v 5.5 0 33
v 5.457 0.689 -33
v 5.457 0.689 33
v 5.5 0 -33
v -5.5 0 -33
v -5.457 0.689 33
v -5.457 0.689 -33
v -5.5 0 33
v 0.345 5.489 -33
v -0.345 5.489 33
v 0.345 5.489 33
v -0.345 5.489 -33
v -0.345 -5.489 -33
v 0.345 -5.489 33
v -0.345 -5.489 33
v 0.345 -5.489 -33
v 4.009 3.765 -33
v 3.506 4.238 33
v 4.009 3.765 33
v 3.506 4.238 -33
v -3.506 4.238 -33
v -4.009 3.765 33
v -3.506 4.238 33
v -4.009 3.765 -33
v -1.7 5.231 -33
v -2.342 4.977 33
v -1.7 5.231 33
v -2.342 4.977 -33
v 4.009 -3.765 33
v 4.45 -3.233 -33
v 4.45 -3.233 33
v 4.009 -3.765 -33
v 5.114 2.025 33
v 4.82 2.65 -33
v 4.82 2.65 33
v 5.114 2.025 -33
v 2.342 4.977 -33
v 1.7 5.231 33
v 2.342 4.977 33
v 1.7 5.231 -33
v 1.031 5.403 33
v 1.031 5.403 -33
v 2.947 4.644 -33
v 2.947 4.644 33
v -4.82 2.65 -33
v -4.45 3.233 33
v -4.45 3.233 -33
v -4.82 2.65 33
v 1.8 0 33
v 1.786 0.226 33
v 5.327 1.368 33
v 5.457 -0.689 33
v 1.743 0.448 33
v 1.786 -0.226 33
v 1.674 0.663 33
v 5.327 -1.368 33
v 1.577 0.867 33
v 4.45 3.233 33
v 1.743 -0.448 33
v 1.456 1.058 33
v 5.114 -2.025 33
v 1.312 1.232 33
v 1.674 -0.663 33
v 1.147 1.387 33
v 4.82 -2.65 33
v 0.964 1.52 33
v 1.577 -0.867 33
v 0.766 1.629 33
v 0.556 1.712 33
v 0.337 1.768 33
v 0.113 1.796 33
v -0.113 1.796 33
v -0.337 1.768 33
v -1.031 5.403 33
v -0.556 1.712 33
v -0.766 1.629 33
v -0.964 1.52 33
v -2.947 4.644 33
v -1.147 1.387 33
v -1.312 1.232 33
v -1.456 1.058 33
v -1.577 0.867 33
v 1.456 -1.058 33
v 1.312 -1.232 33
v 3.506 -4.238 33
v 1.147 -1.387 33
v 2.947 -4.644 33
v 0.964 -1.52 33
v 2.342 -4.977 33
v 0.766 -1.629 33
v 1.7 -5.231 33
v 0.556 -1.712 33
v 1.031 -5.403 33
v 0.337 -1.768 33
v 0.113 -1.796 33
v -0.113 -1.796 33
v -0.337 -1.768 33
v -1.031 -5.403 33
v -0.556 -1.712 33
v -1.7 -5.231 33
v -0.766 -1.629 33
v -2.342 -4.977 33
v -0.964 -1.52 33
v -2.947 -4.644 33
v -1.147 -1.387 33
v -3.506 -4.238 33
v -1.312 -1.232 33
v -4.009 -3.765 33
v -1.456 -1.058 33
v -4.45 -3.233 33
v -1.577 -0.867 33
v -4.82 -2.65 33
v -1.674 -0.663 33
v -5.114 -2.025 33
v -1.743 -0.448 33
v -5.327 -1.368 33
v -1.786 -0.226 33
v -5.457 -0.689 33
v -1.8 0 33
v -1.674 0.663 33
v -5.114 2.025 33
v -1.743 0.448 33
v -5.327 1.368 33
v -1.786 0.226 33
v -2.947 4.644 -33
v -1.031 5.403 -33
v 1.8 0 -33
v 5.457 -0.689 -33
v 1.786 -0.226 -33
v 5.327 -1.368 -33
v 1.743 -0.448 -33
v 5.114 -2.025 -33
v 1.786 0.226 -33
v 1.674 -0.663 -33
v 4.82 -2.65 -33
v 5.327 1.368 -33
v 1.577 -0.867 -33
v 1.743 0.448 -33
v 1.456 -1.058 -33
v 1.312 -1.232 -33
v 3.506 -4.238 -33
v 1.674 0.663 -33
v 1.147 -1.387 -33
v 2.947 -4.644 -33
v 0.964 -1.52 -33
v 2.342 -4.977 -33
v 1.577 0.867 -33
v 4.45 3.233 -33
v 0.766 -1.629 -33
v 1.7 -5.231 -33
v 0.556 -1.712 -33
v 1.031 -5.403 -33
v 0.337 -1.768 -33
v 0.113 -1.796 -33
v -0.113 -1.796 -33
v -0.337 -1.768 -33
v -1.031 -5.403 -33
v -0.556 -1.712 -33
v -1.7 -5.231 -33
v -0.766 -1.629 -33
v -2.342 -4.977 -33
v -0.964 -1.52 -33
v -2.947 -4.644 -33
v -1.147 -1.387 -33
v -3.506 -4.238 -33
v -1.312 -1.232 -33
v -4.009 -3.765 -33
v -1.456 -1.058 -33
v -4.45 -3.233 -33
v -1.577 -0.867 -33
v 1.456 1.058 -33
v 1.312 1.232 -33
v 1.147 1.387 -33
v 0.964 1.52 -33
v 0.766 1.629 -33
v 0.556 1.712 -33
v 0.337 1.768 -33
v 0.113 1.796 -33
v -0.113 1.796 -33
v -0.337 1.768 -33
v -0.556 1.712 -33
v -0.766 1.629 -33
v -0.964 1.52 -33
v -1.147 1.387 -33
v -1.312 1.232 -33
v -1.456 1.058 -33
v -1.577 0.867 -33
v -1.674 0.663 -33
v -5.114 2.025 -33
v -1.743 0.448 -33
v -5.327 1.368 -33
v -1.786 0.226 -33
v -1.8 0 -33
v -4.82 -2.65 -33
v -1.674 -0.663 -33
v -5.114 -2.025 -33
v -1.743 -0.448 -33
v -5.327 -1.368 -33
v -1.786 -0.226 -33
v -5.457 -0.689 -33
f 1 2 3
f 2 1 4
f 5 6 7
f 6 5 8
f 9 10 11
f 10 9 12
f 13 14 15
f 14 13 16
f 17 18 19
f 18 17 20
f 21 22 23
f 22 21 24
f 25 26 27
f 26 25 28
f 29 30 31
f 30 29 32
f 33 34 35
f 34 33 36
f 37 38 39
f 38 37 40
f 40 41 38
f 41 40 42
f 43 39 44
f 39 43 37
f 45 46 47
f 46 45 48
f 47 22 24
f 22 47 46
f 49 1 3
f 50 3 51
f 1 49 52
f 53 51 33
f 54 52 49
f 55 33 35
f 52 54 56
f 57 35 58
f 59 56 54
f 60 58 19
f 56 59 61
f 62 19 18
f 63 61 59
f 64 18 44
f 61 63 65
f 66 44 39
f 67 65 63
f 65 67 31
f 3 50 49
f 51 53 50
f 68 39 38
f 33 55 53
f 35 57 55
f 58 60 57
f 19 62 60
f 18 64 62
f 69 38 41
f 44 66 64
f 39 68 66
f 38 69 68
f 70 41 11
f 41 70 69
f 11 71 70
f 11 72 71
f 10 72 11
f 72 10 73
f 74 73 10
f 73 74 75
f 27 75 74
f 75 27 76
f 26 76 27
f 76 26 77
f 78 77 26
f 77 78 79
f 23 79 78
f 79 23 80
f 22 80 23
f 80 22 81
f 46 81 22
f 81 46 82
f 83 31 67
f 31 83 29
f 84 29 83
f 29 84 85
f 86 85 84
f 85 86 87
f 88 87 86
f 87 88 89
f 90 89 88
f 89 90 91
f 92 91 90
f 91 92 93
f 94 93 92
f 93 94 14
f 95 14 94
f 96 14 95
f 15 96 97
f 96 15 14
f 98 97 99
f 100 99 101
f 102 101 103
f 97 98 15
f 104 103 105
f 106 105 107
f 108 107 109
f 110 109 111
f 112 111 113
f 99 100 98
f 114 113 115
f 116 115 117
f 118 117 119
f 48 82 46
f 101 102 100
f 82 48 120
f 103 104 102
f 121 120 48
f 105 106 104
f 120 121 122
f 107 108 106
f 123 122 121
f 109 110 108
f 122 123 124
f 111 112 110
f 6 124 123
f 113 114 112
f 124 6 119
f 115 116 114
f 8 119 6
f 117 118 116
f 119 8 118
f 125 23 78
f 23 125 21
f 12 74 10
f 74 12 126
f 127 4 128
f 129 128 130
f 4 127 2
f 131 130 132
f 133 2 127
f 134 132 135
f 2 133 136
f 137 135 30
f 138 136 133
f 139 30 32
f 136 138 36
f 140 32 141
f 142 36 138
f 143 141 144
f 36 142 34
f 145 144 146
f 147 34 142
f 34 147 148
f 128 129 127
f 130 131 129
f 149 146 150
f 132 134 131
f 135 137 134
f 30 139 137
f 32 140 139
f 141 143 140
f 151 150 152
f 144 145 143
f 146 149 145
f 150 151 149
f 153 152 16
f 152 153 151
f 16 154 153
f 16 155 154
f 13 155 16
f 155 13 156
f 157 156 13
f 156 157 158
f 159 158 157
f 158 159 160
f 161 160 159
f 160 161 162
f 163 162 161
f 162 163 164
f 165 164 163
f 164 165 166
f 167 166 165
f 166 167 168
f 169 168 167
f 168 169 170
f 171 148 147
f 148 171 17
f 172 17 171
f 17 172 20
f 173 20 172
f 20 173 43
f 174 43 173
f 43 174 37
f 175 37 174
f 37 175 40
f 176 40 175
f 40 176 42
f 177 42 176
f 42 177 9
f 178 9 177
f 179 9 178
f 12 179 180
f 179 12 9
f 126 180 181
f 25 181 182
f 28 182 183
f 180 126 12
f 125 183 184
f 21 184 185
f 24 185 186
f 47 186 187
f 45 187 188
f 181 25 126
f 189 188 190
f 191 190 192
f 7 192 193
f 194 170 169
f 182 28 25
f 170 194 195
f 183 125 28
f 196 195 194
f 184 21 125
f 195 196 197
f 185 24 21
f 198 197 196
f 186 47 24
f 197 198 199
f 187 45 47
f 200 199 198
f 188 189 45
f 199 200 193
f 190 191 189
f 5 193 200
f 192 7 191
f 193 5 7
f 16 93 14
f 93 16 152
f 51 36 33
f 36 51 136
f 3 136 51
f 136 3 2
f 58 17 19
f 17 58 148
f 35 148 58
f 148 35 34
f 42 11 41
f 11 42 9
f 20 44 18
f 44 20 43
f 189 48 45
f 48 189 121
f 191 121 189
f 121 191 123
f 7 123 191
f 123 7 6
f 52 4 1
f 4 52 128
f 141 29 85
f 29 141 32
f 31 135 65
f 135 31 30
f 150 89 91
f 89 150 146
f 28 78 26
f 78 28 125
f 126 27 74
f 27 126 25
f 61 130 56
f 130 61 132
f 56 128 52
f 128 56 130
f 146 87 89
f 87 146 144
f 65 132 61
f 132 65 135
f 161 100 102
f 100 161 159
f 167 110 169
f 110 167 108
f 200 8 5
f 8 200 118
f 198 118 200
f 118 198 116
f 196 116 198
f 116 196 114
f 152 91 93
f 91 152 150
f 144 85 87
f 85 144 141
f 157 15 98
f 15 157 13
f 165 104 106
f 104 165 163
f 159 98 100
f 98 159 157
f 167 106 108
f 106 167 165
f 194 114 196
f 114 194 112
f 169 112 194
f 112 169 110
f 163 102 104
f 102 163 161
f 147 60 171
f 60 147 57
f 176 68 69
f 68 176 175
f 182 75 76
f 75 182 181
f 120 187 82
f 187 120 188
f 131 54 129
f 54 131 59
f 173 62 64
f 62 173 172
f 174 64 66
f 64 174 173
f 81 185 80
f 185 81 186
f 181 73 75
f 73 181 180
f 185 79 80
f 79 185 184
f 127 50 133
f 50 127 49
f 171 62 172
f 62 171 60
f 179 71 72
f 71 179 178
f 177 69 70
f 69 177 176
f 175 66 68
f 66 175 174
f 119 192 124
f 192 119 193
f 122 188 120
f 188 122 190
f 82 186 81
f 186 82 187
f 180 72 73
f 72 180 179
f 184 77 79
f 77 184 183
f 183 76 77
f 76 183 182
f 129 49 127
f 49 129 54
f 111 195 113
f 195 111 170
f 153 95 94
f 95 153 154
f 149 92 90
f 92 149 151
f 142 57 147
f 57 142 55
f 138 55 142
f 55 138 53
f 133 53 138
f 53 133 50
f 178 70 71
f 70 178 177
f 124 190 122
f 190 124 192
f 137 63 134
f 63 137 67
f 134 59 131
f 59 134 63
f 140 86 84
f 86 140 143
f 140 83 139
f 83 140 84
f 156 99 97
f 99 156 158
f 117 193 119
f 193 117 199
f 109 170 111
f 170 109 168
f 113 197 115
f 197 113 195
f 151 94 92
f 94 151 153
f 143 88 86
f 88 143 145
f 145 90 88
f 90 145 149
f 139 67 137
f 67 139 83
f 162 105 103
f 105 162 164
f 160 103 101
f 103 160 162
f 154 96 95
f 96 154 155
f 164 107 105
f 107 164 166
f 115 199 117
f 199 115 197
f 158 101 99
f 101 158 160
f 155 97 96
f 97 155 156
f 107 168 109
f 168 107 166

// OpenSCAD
$fn = 50;


difference() {
	union() {
		translate(v = [0, 0, -33.0000000000]) {
			cylinder(h = 66, r = 5.5000000000);
		}
	}
	union() {
		translate(v = [0, 0, -100.0000000000]) {
			cylinder(h = 200, r = 1.8000000000);
		}
	}
}
